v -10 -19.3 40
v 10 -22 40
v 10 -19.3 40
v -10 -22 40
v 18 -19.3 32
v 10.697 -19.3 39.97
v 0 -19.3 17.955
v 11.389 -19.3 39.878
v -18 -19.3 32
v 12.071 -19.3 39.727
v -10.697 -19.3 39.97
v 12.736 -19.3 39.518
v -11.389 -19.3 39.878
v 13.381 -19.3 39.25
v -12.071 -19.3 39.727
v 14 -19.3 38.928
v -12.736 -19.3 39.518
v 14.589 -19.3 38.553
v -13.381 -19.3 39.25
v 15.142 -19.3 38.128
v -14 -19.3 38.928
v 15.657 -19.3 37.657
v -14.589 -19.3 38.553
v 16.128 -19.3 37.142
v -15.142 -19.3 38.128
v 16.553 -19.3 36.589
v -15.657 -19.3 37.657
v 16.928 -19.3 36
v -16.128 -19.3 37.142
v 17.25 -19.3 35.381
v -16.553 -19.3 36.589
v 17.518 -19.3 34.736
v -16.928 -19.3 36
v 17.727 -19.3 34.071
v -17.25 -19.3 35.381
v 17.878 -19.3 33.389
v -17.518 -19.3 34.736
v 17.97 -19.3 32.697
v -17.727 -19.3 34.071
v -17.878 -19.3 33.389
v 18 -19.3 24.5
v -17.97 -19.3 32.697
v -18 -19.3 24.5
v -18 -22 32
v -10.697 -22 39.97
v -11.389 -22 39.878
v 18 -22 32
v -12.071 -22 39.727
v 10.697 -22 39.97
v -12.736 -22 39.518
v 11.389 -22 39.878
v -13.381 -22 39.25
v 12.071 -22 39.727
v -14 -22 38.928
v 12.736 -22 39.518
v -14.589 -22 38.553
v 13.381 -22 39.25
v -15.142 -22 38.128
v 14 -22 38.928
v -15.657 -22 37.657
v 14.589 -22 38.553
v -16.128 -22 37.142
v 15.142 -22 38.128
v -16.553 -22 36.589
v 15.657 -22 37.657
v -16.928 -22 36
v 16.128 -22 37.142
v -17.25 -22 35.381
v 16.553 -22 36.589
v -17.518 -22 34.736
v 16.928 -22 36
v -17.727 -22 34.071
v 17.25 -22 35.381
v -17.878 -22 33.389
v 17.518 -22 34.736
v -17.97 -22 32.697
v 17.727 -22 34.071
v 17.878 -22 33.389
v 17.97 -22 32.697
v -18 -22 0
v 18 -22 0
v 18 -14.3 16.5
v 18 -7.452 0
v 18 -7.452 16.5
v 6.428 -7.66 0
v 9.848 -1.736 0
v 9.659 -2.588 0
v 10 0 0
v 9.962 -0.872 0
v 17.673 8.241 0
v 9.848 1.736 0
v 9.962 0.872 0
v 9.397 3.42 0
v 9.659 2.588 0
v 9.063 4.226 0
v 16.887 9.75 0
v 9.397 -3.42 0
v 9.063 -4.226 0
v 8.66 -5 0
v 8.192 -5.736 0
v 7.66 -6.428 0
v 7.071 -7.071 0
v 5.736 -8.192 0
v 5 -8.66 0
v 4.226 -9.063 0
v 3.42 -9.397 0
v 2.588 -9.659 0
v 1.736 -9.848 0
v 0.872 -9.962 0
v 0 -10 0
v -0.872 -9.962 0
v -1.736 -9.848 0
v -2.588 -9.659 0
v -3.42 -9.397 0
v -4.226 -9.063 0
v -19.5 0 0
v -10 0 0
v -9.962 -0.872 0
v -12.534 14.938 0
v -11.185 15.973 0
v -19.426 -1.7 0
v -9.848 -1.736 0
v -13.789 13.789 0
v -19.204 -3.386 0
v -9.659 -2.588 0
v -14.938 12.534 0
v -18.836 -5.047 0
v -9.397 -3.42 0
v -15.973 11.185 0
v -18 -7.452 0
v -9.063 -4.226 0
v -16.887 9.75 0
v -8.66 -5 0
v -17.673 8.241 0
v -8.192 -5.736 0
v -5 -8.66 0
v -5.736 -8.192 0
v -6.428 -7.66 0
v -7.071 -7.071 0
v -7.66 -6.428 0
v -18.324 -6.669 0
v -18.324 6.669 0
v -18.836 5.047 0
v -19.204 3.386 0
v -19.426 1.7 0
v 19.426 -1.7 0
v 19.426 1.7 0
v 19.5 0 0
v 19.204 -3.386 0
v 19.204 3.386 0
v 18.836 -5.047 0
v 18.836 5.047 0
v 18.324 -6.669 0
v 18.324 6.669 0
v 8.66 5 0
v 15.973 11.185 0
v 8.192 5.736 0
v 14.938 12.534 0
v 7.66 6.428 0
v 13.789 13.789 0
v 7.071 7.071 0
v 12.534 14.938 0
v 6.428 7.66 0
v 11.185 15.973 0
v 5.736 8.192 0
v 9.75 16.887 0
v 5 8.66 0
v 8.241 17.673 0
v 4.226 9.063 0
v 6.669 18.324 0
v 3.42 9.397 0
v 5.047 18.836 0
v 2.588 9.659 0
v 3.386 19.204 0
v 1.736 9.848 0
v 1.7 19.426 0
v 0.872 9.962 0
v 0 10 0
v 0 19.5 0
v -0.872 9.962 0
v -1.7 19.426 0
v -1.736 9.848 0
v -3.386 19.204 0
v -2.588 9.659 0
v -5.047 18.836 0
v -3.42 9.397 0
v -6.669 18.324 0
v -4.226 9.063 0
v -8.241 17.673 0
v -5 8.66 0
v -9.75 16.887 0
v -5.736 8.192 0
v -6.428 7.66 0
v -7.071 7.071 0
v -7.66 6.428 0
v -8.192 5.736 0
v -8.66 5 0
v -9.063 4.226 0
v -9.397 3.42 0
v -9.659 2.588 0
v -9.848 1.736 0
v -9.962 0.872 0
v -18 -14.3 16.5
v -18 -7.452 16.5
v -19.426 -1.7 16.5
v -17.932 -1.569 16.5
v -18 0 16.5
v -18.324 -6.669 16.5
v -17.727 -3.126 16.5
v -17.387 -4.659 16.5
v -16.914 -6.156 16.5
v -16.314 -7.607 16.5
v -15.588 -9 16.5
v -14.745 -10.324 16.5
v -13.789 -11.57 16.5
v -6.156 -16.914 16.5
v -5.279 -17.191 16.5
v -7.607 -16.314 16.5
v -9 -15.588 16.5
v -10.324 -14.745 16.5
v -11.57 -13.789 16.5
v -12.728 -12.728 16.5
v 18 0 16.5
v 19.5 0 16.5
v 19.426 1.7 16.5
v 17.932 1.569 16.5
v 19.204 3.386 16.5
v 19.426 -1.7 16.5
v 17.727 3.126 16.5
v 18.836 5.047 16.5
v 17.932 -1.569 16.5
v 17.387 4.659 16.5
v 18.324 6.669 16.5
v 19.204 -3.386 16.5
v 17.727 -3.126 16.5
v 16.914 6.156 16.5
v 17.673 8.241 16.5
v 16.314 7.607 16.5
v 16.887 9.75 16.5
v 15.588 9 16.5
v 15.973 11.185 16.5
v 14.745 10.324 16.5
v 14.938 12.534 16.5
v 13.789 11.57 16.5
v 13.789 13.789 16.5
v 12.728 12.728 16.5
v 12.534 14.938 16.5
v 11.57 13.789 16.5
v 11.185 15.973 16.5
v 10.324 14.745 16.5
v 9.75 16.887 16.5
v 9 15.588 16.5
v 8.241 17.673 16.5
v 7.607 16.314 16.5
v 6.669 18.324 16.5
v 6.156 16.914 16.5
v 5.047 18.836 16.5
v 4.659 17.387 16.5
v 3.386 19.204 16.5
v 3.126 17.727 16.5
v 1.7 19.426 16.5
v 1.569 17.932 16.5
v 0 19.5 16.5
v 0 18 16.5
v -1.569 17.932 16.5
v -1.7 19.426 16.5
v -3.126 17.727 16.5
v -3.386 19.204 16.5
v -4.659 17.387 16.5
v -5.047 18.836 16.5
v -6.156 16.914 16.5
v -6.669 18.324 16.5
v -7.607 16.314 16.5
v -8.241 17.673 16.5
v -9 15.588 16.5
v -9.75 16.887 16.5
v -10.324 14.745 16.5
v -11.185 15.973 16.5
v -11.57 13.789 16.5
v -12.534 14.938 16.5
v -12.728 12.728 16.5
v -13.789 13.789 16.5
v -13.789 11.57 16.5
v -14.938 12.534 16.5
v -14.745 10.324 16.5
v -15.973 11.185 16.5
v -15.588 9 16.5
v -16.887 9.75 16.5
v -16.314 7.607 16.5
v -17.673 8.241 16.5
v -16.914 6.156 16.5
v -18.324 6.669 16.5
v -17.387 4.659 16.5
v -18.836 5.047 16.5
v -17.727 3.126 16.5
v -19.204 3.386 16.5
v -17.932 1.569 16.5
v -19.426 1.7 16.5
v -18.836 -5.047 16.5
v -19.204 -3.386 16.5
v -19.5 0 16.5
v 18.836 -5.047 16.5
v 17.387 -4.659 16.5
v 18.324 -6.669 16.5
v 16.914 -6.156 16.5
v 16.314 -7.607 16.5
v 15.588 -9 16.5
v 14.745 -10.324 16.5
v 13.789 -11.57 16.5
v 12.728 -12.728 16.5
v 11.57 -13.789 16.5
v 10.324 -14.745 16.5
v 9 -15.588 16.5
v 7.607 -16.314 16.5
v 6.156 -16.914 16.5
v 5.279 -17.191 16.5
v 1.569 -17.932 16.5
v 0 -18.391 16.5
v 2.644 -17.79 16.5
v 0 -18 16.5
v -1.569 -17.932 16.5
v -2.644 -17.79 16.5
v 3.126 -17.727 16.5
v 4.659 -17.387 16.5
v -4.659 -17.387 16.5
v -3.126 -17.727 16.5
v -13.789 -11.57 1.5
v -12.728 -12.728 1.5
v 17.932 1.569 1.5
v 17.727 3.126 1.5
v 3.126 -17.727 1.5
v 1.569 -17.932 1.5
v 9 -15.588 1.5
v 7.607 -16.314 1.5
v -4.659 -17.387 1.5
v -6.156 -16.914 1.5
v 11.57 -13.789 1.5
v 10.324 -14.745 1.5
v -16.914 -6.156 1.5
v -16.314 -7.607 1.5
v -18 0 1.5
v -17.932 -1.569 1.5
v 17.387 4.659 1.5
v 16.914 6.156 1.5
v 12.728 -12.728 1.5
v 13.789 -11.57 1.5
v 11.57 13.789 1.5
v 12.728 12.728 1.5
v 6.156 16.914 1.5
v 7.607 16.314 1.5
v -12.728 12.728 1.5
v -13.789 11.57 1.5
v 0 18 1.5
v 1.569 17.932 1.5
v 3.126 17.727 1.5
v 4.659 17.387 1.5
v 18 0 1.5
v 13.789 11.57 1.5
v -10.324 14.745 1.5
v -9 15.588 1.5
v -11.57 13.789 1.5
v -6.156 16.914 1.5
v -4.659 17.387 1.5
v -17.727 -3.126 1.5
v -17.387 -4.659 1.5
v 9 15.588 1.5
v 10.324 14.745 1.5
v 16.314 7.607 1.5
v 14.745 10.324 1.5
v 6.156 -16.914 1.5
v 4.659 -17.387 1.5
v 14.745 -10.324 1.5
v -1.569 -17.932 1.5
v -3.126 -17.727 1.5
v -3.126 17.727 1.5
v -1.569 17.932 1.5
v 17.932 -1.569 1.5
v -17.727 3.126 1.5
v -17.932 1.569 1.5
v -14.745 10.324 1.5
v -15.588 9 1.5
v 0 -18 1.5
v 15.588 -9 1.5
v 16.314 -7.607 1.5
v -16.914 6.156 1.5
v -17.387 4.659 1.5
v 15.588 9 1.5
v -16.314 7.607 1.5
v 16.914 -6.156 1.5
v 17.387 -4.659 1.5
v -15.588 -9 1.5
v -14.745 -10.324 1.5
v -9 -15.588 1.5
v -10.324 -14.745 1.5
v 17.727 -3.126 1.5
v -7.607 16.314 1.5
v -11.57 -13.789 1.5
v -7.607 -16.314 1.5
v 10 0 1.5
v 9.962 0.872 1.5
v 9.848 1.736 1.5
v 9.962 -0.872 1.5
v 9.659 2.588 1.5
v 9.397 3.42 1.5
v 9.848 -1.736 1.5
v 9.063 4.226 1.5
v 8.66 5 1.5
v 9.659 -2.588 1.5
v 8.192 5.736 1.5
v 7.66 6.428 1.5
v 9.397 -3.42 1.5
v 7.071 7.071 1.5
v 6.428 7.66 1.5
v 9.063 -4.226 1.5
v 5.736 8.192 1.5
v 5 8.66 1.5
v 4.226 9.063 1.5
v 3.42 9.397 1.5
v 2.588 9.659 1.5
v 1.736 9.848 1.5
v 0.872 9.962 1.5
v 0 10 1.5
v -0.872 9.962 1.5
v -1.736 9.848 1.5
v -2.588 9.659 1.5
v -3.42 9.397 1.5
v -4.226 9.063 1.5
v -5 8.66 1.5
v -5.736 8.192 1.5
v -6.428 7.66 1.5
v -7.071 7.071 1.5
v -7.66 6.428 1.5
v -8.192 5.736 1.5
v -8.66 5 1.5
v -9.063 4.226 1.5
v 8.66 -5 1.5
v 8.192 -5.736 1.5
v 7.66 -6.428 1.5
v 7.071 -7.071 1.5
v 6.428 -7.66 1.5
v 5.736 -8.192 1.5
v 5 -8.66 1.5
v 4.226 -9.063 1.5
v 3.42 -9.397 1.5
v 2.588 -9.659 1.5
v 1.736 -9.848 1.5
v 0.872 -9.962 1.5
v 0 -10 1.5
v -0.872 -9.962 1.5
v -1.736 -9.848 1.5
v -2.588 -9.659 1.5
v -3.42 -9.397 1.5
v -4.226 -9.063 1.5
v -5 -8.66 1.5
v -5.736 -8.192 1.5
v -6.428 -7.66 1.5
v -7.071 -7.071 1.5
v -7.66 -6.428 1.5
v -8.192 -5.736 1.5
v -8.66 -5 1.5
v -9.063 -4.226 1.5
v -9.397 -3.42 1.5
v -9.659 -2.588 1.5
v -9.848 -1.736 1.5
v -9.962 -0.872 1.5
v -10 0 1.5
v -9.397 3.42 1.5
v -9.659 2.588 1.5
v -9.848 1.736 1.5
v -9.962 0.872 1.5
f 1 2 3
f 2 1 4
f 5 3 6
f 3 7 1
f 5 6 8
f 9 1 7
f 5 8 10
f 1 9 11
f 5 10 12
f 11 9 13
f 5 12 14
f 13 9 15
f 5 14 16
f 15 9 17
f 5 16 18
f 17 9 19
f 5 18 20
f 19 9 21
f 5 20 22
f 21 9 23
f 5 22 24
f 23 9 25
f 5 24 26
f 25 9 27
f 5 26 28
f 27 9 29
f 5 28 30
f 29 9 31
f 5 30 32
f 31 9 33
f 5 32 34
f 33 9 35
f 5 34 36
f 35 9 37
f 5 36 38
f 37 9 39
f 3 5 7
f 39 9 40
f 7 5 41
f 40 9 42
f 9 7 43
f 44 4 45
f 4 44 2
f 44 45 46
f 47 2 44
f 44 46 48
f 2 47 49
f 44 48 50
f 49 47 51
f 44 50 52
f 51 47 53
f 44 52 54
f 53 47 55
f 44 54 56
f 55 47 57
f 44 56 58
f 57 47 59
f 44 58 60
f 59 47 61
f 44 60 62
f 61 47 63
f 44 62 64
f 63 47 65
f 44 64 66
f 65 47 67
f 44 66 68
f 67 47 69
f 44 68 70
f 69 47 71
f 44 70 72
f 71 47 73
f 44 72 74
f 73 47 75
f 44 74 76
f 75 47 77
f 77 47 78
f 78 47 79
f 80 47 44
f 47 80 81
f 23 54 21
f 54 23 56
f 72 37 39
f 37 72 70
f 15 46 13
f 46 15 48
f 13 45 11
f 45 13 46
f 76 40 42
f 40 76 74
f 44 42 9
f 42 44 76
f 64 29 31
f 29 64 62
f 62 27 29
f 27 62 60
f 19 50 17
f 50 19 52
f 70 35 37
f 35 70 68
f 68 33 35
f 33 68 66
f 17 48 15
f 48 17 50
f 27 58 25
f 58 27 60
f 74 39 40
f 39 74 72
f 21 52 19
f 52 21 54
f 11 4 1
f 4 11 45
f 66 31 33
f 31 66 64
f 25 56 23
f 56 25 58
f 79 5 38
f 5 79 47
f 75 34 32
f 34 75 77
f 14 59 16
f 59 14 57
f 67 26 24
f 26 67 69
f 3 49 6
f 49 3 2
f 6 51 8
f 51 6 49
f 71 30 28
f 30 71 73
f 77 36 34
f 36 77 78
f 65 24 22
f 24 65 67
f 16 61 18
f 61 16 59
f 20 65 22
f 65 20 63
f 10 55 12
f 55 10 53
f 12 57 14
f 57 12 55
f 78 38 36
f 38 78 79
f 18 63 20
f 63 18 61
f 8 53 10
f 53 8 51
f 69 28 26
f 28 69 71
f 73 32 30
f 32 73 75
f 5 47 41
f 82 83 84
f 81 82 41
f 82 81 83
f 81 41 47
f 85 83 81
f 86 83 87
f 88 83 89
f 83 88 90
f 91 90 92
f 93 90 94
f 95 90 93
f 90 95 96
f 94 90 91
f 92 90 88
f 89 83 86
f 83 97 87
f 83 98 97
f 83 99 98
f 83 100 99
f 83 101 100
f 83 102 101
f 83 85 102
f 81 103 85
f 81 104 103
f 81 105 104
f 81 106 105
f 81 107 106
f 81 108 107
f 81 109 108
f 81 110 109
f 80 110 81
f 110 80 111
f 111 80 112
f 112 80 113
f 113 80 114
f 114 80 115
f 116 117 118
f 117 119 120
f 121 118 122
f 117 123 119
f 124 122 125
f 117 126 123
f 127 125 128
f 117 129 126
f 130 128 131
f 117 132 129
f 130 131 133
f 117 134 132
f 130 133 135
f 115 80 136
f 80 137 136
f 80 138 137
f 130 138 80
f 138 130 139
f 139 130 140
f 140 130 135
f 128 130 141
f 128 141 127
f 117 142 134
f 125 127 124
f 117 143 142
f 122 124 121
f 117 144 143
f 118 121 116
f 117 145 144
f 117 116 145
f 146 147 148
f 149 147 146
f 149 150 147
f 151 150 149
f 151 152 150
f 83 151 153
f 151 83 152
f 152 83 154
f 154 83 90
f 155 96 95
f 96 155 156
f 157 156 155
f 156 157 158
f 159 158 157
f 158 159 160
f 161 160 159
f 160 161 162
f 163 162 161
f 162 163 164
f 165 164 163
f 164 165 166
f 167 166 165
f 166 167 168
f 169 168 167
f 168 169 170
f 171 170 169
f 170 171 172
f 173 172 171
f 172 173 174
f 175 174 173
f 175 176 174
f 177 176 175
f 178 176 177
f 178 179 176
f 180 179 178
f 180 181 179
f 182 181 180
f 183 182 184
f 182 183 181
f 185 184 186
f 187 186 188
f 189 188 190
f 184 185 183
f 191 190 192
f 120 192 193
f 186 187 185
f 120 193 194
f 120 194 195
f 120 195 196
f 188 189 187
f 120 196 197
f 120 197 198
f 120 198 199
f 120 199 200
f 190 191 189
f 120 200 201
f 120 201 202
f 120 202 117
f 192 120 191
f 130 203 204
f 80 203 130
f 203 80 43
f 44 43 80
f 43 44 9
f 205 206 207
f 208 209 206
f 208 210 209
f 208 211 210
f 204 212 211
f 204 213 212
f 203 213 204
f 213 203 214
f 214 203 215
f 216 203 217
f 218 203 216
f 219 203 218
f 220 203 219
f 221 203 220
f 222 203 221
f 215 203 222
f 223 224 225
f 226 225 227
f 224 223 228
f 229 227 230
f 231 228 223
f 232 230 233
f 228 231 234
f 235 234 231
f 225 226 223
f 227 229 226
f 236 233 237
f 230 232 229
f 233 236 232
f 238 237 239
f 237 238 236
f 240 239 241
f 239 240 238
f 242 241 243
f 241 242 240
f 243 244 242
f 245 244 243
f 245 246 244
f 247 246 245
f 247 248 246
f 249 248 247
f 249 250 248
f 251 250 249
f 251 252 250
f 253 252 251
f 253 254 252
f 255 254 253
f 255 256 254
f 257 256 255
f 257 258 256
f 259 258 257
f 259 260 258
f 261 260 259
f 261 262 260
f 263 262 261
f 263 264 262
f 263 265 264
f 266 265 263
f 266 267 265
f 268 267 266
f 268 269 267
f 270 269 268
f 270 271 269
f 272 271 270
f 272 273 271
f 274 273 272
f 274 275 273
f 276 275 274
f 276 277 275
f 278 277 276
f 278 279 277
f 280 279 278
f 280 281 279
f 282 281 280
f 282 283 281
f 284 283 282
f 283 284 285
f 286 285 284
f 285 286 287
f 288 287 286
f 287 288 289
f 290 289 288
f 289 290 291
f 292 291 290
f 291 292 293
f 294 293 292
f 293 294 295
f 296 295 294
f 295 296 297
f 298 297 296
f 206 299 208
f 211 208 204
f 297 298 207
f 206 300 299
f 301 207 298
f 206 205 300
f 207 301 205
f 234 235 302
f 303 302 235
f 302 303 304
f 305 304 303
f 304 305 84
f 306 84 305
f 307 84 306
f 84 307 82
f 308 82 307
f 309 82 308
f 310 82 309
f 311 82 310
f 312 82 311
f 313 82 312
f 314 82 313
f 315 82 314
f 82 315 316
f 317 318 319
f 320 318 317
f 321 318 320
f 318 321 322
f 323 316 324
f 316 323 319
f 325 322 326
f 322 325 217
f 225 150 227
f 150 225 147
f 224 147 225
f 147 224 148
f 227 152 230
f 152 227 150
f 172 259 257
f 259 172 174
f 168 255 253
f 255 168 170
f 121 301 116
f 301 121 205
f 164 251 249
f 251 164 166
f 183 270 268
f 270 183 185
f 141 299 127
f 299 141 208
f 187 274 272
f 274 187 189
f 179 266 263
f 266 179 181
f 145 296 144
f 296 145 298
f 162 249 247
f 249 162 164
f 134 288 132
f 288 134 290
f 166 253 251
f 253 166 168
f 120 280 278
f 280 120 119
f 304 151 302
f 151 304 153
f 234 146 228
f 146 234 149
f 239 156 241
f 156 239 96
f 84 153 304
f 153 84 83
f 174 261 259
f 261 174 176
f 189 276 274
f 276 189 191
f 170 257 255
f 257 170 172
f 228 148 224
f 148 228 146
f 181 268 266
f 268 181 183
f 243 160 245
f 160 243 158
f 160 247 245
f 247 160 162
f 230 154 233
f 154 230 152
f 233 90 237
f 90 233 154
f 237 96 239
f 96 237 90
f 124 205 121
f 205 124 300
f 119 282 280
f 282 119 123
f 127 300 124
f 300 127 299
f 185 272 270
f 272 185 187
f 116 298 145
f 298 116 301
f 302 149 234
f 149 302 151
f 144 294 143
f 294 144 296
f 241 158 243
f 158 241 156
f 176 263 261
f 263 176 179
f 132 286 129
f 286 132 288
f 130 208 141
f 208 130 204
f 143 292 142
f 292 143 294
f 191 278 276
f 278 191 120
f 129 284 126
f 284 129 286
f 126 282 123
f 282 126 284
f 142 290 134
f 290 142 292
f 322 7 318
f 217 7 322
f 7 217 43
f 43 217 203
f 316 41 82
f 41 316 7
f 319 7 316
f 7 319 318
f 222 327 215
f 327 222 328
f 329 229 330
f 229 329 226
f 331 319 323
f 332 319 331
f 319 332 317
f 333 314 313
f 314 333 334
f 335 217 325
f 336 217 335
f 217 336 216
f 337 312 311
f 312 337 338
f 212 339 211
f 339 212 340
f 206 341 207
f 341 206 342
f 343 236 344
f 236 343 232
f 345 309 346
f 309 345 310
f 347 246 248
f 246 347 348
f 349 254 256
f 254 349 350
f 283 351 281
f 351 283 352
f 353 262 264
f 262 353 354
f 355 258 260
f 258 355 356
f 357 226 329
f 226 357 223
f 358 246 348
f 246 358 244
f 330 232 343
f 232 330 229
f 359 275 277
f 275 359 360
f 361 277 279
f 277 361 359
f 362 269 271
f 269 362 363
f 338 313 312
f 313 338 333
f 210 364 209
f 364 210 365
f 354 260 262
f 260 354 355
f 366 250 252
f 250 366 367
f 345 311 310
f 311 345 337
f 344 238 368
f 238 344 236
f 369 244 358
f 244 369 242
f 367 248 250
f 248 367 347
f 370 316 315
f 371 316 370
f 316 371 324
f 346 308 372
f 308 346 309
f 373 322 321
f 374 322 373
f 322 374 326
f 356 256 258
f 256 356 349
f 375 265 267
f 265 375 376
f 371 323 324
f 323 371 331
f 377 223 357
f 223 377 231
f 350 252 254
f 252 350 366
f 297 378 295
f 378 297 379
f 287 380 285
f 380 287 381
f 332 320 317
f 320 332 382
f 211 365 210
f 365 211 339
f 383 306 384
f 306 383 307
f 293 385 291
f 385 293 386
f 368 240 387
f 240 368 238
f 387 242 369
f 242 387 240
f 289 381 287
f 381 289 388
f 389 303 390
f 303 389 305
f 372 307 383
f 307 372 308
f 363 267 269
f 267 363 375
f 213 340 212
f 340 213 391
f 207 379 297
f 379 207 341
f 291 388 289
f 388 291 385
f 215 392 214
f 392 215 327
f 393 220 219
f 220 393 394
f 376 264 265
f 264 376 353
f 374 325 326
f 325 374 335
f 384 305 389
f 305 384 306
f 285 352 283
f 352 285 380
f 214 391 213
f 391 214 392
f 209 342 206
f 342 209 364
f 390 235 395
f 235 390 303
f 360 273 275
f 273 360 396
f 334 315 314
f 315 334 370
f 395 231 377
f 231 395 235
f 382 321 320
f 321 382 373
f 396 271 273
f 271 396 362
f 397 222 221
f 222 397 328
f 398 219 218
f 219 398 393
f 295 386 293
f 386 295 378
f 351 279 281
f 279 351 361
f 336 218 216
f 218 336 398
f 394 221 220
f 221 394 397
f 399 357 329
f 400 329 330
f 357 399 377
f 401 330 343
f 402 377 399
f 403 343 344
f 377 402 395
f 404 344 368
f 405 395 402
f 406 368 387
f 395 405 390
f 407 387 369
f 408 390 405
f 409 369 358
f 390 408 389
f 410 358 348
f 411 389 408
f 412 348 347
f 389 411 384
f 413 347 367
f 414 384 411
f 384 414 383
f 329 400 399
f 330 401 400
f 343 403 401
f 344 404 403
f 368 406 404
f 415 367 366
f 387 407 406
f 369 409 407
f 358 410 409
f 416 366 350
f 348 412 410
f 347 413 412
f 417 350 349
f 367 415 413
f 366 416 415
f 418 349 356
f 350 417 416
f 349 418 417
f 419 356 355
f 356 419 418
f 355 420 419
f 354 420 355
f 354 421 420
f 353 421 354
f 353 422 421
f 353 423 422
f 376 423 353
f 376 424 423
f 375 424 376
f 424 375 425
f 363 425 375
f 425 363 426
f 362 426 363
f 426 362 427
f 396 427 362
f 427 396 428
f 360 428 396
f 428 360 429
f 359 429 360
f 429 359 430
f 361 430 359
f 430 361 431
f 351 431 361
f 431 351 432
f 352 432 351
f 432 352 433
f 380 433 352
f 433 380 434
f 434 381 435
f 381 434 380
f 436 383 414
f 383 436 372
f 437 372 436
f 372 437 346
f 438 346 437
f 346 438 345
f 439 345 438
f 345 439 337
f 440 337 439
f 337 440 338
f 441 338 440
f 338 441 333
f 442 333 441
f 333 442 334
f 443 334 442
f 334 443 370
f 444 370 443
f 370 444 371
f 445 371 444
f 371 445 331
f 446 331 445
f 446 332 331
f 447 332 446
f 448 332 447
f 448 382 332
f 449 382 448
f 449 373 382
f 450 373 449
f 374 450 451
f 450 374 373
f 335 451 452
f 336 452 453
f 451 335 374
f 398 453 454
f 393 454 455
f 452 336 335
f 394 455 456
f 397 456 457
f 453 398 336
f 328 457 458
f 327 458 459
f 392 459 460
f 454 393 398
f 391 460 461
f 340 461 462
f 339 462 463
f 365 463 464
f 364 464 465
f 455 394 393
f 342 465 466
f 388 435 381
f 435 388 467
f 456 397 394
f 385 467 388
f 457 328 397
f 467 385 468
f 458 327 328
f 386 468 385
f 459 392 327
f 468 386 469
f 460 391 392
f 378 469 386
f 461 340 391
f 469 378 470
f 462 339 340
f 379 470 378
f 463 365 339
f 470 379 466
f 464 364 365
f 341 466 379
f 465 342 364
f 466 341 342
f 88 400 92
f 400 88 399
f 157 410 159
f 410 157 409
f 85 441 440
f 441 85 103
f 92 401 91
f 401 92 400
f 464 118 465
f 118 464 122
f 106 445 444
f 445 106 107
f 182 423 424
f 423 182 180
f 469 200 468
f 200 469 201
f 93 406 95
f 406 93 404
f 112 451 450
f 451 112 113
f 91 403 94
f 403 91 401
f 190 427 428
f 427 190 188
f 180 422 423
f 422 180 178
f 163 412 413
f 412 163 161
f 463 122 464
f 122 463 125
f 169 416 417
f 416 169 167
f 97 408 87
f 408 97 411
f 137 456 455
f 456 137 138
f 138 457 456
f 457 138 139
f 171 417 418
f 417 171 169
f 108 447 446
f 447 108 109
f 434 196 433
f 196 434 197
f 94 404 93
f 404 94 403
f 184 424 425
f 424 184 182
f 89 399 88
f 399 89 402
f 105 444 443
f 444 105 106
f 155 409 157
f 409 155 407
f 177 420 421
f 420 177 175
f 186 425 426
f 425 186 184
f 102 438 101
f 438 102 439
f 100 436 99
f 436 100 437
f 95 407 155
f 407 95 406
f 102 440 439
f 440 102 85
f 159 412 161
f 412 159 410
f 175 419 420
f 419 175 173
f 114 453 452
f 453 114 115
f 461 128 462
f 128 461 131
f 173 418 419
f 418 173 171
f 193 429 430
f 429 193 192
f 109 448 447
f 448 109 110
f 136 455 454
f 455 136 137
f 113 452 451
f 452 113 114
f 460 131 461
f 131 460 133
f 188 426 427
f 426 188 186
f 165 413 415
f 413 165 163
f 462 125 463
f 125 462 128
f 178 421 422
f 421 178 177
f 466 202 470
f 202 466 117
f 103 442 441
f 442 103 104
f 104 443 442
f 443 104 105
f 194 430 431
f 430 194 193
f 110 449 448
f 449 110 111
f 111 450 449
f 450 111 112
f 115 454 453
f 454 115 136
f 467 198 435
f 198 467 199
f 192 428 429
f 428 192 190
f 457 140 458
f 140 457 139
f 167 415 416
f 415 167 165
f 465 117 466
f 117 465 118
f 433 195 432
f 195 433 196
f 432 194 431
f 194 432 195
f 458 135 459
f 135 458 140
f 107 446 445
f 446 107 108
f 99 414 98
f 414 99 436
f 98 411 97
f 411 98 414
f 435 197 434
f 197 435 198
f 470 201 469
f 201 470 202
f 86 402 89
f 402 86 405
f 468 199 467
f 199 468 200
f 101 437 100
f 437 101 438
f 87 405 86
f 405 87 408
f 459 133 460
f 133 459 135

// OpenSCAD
// Higher definition curves
$fa = 5;
$fs = 0.2;

base_d = 36;
base_h = 15;

thick = 1.5;
gap = 1.3;
mount_thick = thick * 1.8;
mount_height = 40;
mount_width = base_d;
mount_r = 8;


module chamfer() {
    front = 5;
    height = 8;
    translate([0, -(base_d+thick*2)/2+thick-gap, base_h+thick]) polyhedron([
        [-mount_width/2, front, 0],
        [4, 0, 0],
        [-mount_width/2, 0, height],
        [-mount_width/2, 0, 0],
    ], [
        [0, 1, 2],
        [3, 0, 2],
        [3, 1, 0],
        [3, 2, 1],
    ]);
}

difference() {
    union() {
        // Rounded top of mount
        translate([-(mount_width-mount_r*2)/2, -(base_d+thick*2)/2-mount_thick+thick-gap, mount_height-mount_r]) cube([mount_width-mount_r*2, mount_thick, mount_r]);
        translate([-(mount_width-mount_r*2)/2, -(base_d+thick*2)/2-mount_thick+thick-gap, mount_height-mount_r]) rotate([-90, 0, 0]) cylinder(mount_thick, r=mount_r);
        translate([(mount_width-mount_r*2)/2, -(base_d+thick*2)/2-mount_thick+thick-gap, mount_height-mount_r]) rotate([-90, 0, 0]) cylinder(mount_thick, r=mount_r);
        // Mount
        translate([-(mount_width)/2, -(base_d+thick*2)/2-mount_thick+thick-gap, 0]) cube([mount_width, mount_thick, mount_height-mount_r]);
        // Base attachment
        translate([-(mount_width)/2, -(base_d+thick*2)/2, 0]) cube([mount_width, (base_d+thick*2)/2, base_h+thick]);
        // Base
        cylinder(base_h+thick, d=base_d+thick*2);
        chamfer();
        mirror([1, 0, 0]) chamfer();
    }
    translate([0, 0, thick]) cylinder(base_h, d=base_d);
    cylinder(base_h+thick, d=20);
}
